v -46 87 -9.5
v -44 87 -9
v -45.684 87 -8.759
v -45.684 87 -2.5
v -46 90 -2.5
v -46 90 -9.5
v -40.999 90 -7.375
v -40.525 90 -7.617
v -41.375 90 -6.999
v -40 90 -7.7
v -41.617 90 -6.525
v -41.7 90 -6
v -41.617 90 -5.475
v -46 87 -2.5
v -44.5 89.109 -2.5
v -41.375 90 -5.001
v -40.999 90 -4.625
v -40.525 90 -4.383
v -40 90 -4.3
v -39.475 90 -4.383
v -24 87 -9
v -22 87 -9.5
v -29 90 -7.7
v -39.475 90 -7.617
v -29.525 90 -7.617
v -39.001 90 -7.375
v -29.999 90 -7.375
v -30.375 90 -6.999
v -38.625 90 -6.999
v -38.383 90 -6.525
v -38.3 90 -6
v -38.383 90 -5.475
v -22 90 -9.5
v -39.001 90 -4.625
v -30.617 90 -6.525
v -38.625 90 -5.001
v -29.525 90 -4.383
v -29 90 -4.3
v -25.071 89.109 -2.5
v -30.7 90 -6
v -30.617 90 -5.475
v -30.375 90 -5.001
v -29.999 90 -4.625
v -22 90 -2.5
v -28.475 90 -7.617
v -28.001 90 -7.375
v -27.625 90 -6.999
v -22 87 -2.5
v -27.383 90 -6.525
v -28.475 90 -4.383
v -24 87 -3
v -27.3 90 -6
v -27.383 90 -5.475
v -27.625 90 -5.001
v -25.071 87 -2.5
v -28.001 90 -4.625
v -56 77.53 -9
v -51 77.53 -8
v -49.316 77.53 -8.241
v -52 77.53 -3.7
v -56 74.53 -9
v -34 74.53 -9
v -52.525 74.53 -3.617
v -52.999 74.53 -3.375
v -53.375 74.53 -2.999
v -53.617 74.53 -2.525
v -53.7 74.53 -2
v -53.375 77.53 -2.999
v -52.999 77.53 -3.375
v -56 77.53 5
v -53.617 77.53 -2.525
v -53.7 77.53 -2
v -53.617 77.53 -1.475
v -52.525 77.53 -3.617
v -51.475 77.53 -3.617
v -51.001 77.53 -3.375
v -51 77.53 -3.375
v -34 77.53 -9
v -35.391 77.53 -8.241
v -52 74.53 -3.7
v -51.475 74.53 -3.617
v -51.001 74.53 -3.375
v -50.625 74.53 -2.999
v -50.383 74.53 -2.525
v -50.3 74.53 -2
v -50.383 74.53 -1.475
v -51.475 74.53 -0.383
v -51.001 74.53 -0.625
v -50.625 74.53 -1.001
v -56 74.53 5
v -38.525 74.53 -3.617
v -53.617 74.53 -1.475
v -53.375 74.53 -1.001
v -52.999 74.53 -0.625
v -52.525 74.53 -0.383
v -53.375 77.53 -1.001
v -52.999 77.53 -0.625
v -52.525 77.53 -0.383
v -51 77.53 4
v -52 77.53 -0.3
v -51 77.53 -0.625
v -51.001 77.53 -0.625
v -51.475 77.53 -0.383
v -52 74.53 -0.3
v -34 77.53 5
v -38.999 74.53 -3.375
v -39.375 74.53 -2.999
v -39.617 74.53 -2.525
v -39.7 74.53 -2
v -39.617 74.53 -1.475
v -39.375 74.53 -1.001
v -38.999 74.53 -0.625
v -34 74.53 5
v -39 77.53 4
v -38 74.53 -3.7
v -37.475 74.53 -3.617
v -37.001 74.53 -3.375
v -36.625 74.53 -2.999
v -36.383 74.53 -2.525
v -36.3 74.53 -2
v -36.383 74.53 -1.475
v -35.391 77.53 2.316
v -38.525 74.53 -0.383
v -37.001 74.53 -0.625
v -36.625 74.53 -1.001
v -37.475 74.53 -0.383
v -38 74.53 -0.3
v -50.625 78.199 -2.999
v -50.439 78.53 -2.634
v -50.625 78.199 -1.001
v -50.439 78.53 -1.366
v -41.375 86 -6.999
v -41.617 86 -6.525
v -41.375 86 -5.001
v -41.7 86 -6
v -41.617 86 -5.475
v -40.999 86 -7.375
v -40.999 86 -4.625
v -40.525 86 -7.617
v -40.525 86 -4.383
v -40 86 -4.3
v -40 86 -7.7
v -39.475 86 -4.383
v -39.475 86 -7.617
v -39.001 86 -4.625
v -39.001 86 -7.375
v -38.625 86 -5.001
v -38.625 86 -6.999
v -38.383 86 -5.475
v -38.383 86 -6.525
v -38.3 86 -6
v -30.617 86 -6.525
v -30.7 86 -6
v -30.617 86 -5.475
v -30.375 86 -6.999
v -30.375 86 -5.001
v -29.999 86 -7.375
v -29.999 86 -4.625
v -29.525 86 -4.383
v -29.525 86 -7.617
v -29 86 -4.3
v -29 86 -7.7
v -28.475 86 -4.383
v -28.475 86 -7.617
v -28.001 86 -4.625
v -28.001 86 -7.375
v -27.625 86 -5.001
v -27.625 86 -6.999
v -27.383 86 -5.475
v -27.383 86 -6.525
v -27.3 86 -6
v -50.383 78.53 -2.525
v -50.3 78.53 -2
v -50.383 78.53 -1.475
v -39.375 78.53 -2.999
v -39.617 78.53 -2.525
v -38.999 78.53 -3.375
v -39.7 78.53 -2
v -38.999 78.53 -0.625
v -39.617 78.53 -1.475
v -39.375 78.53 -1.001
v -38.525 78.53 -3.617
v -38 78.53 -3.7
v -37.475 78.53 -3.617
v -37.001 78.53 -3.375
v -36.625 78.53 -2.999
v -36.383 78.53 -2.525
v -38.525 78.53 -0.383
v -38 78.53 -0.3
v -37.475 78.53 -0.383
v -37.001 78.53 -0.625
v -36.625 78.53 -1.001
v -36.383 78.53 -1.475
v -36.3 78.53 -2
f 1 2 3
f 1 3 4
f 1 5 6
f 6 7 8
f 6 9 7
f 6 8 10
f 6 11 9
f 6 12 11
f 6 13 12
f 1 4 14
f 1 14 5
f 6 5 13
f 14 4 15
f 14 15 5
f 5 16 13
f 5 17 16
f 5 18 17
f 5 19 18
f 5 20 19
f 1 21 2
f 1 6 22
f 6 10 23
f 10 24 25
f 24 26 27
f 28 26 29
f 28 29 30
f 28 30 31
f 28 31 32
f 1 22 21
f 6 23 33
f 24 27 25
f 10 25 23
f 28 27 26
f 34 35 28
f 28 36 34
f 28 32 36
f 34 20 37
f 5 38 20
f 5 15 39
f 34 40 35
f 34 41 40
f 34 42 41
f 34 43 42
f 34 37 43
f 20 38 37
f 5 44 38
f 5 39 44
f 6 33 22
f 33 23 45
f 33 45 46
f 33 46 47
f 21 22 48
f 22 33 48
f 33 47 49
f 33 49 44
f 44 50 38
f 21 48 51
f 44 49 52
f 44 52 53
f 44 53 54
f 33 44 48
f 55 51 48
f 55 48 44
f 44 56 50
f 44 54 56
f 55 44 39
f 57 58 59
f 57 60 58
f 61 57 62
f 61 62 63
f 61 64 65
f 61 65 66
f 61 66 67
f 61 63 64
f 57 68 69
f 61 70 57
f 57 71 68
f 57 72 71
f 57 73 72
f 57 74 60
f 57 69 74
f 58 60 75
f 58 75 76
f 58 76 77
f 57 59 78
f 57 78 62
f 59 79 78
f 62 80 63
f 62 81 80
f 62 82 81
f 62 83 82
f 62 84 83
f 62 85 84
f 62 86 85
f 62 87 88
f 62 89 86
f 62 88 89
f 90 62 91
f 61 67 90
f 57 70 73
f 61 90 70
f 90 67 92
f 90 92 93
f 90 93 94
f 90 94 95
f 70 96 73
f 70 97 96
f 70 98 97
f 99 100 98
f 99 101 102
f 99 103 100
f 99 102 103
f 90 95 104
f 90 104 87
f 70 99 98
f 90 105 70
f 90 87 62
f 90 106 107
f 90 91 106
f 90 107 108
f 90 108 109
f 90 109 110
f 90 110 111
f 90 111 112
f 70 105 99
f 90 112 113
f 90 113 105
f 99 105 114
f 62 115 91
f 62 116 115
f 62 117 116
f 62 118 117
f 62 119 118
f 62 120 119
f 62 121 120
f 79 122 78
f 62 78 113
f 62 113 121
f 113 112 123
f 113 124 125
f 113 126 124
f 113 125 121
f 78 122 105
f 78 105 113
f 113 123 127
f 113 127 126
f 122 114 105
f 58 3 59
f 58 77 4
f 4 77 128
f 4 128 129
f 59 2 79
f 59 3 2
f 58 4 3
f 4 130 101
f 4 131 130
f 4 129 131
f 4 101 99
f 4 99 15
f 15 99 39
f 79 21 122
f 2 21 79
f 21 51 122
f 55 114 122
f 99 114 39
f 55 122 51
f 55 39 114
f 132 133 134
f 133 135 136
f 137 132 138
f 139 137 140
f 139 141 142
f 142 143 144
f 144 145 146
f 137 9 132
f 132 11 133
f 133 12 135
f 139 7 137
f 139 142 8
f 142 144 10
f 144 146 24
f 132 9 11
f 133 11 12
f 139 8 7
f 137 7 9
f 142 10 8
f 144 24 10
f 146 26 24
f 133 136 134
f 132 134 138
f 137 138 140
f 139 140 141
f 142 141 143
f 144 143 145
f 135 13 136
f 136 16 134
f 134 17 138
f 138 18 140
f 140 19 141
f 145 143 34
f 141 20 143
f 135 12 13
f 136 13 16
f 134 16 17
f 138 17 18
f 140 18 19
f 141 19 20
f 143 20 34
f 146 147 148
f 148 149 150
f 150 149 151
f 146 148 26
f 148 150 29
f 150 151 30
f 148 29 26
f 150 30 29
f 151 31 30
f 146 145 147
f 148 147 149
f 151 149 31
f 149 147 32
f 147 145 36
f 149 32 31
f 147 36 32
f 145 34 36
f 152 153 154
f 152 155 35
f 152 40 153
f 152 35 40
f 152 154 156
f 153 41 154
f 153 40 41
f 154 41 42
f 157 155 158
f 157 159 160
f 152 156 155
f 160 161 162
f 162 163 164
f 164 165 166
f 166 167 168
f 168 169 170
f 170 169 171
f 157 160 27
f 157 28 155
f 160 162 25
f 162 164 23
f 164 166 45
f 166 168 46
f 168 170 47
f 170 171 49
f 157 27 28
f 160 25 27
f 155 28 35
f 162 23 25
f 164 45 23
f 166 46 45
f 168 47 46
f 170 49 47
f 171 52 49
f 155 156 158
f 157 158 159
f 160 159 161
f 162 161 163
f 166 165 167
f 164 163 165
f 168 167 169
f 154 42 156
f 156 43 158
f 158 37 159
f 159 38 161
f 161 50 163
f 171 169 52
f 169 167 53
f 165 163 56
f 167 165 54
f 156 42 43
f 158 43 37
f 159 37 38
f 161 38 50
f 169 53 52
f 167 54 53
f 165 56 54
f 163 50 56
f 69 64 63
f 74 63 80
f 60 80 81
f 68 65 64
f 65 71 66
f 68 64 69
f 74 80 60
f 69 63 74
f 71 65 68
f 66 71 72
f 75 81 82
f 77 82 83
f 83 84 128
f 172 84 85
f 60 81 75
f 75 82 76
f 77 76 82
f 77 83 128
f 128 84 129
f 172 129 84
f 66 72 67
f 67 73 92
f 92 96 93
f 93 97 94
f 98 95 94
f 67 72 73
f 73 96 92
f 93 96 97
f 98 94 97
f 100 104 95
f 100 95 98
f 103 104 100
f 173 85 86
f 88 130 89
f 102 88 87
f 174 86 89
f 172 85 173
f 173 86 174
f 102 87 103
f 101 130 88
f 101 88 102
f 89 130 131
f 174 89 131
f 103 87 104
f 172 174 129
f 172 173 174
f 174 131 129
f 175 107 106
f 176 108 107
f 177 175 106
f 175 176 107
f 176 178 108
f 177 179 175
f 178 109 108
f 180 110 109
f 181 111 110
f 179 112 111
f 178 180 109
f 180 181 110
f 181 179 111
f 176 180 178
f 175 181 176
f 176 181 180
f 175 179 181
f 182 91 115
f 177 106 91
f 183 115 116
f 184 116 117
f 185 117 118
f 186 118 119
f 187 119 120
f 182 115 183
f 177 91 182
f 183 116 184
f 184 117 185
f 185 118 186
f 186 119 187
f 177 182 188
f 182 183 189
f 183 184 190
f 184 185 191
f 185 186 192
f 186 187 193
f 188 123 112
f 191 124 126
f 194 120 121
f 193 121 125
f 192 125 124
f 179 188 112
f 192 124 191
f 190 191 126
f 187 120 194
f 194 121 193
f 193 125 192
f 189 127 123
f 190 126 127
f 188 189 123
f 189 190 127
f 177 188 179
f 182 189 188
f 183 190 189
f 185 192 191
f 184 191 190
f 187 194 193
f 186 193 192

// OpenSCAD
// H15L_cradle_arm  (qty 1; frame: H; PETG home print preferred (fit to the bought cradle))
// GENERATED by gen_halo_stl.py from halo_parts.py. Change numbers in halo_params.scad.
// Every dimension below is an expression of the names in halo_params.scad.
include <../halo_params.scad>

mirror([0, 1, 0]) {
    rotate([90, 0, 0]) {
        difference() {
            union() {
                translate([-46, -9.5, Y_SIDE_IN - 3]) {
                    cube([24, 7, Y_SIDE_IN - (Y_SIDE_IN - 3)], center = false);
                }
                translate([TRAG_X - 35 - 11, EAR_TOP_Z + 13 - 7, HBB * 0.89 + 6]) {
                    cube([TRAG_X - 35 + 11 - (TRAG_X - 35 - 11), EAR_TOP_Z + 13 + 7 - (EAR_TOP_Z + 13 - 7), HBB * 0.89 + 6 + 3 - (HBB * 0.89 + 6)], center = false);
                }
                hull() {
                    translate([-44, -9, Y_SIDE_IN - 3]) {
                        cube([20, 6, Y_SIDE_IN - (Y_SIDE_IN - 3)], center = false);
                    }
                    translate([TRAG_X - 35 - 6, EAR_TOP_Z + 13 - 6, HBB * 0.89 + 6]) {
                        cube([TRAG_X - 35 + 6 - (TRAG_X - 35 - 6), EAR_TOP_Z + 13 + 6 - (EAR_TOP_Z + 13 - 6), HBB * 0.89 + 6 + 3 - (HBB * 0.89 + 6)], center = false);
                    }
                }
            }
            translate([-40, -6, Y_SIDE_IN - 4]) {
                cylinder(h = 5, r = M3_CLEAR / 2, center = false, $fn = 20);
            }
            translate([-29, -6, Y_SIDE_IN - 4]) {
                cylinder(h = 5, r = M3_CLEAR / 2, center = false, $fn = 20);
            }
            translate([TRAG_X - 35 + -7, EAR_TOP_Z + 13, HBB * 0.89 + 6 - 1]) {
                cylinder(h = 5, r = M3_CLEAR / 2, center = false, $fn = 20);
            }
            translate([TRAG_X - 35 + 7, EAR_TOP_Z + 13, HBB * 0.89 + 6 - 1]) {
                cylinder(h = 5, r = M3_CLEAR / 2, center = false, $fn = 20);
            }
        }
    }
}
